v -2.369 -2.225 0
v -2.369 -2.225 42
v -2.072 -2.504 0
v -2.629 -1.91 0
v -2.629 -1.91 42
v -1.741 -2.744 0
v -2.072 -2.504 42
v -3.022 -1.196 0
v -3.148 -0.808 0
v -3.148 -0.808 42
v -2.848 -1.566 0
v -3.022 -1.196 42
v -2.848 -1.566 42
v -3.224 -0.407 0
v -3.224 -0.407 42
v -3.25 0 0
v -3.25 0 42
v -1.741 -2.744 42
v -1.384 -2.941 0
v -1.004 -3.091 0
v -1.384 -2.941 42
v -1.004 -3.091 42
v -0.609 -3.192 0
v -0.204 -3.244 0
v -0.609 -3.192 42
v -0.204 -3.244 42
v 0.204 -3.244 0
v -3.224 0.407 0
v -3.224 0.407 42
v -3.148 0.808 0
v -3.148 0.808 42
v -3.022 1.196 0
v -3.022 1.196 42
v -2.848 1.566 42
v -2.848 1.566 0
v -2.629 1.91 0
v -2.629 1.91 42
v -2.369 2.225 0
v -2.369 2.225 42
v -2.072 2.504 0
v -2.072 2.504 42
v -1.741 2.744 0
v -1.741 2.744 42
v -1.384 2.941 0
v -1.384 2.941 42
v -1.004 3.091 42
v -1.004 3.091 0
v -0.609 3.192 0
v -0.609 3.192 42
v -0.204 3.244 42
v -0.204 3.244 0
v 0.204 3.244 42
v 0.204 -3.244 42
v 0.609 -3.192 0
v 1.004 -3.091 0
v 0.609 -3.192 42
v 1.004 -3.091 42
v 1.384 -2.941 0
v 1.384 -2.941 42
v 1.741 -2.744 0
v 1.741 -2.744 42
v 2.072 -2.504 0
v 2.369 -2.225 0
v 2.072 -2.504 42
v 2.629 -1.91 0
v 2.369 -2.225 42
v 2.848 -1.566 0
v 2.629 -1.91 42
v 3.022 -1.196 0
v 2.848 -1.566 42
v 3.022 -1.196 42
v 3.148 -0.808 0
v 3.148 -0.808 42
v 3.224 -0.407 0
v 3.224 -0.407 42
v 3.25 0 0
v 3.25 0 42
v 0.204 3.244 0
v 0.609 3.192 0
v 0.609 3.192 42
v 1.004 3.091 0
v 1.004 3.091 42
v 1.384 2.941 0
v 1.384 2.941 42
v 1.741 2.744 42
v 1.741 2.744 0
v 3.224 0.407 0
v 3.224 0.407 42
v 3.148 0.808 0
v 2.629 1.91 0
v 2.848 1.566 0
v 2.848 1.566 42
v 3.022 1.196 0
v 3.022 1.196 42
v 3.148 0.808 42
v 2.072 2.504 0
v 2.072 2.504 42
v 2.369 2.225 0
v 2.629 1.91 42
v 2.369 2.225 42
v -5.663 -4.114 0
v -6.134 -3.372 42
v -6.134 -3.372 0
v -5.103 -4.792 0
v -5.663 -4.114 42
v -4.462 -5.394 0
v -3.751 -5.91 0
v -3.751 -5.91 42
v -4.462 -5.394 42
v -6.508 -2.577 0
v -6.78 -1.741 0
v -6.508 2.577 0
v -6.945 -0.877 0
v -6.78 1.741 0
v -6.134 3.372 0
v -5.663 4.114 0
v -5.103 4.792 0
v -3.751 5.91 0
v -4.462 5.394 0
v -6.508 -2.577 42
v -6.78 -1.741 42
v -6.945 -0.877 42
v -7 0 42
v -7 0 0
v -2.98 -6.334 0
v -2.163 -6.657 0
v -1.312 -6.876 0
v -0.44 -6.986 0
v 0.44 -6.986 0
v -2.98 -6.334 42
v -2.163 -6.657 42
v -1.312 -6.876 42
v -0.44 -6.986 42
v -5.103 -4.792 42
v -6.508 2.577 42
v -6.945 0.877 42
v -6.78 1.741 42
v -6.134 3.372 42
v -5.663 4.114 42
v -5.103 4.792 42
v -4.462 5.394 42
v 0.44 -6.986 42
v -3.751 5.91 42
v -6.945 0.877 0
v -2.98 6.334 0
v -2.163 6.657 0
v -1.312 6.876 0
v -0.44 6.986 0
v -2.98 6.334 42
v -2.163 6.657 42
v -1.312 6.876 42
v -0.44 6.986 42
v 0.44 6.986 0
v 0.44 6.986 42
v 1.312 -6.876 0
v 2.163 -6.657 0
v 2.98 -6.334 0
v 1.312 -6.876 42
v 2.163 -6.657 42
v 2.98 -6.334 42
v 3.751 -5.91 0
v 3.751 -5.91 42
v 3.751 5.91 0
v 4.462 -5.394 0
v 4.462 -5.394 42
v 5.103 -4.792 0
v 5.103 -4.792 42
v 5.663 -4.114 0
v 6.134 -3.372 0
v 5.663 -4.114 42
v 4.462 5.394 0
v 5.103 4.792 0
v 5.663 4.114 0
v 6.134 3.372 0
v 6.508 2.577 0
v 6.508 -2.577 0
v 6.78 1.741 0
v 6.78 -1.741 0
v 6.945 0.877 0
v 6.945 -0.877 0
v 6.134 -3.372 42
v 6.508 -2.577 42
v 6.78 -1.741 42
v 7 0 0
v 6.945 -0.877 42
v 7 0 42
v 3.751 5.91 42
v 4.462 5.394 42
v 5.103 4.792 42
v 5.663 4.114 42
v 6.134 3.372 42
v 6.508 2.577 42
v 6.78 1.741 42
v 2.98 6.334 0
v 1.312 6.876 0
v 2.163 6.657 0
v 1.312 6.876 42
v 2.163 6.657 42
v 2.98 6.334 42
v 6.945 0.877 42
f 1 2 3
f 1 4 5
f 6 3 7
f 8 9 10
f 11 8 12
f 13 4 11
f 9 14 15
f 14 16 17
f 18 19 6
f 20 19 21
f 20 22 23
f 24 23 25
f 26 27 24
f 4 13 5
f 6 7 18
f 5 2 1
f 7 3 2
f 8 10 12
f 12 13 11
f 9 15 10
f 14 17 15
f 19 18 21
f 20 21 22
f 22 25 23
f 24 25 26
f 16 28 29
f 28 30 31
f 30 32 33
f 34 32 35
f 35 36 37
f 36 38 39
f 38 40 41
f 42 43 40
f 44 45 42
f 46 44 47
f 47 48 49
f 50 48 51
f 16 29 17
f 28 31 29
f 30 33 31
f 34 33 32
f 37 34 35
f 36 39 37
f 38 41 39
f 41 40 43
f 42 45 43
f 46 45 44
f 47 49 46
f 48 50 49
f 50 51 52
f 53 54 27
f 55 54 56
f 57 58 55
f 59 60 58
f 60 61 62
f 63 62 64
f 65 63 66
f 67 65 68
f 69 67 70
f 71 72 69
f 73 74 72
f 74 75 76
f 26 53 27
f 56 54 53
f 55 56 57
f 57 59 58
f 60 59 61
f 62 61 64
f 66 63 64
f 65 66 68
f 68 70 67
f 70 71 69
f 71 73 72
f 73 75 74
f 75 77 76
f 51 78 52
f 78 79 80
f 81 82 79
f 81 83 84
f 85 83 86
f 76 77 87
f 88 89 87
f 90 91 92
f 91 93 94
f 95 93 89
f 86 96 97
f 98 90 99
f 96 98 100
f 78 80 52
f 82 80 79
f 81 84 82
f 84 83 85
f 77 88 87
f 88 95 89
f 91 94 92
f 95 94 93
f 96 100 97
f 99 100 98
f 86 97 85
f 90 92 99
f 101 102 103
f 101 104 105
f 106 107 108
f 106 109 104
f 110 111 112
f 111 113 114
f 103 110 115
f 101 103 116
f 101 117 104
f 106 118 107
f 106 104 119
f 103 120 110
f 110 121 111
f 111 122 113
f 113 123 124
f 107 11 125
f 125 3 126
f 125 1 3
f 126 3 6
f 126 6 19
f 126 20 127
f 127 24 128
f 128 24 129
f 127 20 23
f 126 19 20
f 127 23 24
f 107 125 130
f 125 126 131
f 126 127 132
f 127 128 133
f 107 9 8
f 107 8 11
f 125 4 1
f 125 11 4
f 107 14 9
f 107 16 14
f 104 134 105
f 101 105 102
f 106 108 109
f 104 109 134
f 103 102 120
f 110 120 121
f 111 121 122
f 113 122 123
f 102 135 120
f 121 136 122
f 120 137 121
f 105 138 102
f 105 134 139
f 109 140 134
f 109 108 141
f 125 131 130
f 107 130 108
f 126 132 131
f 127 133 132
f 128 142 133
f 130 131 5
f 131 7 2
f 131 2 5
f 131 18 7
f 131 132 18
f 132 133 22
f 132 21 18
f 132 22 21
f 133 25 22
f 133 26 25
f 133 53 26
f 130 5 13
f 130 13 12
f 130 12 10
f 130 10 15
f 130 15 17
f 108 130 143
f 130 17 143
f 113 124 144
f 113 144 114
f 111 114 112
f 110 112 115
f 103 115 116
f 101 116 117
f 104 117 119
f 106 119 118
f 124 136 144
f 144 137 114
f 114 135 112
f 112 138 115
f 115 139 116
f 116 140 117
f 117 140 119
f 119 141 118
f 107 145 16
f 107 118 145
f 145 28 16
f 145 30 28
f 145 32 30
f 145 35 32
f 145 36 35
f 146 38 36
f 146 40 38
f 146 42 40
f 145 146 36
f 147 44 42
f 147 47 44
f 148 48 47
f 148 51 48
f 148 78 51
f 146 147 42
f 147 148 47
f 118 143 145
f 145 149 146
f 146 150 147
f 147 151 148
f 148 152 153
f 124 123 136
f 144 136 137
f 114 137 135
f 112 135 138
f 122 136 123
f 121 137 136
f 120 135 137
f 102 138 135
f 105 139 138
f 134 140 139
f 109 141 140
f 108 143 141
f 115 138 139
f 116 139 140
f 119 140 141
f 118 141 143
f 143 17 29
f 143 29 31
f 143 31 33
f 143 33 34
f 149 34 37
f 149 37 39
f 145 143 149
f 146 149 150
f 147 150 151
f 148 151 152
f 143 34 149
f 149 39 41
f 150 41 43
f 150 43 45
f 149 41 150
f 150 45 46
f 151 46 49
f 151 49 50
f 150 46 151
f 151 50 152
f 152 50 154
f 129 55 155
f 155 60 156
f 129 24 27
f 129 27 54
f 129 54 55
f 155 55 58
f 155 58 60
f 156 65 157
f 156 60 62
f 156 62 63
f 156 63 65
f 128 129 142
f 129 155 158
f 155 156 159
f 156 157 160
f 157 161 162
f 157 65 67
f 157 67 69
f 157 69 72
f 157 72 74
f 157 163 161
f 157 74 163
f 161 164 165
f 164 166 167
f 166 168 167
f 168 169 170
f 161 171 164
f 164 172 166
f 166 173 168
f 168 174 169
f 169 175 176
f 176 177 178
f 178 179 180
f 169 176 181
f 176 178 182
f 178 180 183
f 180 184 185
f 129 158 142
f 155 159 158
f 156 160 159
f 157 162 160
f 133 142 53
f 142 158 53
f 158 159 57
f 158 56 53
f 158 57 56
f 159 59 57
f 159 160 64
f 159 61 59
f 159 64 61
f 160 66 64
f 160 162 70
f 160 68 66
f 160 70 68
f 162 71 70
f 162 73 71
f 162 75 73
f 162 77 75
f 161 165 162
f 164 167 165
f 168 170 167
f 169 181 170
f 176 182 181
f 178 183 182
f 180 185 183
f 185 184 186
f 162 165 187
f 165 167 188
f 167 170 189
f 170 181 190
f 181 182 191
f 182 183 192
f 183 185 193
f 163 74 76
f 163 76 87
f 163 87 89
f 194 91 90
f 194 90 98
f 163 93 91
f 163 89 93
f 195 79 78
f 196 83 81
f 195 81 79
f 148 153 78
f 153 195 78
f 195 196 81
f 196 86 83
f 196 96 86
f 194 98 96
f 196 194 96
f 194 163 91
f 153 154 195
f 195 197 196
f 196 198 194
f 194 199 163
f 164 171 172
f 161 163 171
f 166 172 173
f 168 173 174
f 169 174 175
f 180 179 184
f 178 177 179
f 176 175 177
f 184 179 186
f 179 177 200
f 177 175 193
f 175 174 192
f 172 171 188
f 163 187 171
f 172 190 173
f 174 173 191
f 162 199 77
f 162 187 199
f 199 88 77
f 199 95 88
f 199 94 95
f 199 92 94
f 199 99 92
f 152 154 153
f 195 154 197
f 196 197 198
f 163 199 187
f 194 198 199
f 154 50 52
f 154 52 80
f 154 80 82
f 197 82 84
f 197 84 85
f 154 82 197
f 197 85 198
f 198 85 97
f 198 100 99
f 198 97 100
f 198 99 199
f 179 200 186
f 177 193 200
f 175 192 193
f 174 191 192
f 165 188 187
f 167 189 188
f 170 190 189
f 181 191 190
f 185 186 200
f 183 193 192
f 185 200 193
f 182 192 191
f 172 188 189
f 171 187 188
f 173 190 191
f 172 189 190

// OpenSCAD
$fn = 50;

difference() {
	union() {
		cylinder(h = 42, r = 7.0);
	}
	union() {
		cylinder(h = 42, r = 3.25);
		cylinder(h = 42, r = 1.8);
	}
}
